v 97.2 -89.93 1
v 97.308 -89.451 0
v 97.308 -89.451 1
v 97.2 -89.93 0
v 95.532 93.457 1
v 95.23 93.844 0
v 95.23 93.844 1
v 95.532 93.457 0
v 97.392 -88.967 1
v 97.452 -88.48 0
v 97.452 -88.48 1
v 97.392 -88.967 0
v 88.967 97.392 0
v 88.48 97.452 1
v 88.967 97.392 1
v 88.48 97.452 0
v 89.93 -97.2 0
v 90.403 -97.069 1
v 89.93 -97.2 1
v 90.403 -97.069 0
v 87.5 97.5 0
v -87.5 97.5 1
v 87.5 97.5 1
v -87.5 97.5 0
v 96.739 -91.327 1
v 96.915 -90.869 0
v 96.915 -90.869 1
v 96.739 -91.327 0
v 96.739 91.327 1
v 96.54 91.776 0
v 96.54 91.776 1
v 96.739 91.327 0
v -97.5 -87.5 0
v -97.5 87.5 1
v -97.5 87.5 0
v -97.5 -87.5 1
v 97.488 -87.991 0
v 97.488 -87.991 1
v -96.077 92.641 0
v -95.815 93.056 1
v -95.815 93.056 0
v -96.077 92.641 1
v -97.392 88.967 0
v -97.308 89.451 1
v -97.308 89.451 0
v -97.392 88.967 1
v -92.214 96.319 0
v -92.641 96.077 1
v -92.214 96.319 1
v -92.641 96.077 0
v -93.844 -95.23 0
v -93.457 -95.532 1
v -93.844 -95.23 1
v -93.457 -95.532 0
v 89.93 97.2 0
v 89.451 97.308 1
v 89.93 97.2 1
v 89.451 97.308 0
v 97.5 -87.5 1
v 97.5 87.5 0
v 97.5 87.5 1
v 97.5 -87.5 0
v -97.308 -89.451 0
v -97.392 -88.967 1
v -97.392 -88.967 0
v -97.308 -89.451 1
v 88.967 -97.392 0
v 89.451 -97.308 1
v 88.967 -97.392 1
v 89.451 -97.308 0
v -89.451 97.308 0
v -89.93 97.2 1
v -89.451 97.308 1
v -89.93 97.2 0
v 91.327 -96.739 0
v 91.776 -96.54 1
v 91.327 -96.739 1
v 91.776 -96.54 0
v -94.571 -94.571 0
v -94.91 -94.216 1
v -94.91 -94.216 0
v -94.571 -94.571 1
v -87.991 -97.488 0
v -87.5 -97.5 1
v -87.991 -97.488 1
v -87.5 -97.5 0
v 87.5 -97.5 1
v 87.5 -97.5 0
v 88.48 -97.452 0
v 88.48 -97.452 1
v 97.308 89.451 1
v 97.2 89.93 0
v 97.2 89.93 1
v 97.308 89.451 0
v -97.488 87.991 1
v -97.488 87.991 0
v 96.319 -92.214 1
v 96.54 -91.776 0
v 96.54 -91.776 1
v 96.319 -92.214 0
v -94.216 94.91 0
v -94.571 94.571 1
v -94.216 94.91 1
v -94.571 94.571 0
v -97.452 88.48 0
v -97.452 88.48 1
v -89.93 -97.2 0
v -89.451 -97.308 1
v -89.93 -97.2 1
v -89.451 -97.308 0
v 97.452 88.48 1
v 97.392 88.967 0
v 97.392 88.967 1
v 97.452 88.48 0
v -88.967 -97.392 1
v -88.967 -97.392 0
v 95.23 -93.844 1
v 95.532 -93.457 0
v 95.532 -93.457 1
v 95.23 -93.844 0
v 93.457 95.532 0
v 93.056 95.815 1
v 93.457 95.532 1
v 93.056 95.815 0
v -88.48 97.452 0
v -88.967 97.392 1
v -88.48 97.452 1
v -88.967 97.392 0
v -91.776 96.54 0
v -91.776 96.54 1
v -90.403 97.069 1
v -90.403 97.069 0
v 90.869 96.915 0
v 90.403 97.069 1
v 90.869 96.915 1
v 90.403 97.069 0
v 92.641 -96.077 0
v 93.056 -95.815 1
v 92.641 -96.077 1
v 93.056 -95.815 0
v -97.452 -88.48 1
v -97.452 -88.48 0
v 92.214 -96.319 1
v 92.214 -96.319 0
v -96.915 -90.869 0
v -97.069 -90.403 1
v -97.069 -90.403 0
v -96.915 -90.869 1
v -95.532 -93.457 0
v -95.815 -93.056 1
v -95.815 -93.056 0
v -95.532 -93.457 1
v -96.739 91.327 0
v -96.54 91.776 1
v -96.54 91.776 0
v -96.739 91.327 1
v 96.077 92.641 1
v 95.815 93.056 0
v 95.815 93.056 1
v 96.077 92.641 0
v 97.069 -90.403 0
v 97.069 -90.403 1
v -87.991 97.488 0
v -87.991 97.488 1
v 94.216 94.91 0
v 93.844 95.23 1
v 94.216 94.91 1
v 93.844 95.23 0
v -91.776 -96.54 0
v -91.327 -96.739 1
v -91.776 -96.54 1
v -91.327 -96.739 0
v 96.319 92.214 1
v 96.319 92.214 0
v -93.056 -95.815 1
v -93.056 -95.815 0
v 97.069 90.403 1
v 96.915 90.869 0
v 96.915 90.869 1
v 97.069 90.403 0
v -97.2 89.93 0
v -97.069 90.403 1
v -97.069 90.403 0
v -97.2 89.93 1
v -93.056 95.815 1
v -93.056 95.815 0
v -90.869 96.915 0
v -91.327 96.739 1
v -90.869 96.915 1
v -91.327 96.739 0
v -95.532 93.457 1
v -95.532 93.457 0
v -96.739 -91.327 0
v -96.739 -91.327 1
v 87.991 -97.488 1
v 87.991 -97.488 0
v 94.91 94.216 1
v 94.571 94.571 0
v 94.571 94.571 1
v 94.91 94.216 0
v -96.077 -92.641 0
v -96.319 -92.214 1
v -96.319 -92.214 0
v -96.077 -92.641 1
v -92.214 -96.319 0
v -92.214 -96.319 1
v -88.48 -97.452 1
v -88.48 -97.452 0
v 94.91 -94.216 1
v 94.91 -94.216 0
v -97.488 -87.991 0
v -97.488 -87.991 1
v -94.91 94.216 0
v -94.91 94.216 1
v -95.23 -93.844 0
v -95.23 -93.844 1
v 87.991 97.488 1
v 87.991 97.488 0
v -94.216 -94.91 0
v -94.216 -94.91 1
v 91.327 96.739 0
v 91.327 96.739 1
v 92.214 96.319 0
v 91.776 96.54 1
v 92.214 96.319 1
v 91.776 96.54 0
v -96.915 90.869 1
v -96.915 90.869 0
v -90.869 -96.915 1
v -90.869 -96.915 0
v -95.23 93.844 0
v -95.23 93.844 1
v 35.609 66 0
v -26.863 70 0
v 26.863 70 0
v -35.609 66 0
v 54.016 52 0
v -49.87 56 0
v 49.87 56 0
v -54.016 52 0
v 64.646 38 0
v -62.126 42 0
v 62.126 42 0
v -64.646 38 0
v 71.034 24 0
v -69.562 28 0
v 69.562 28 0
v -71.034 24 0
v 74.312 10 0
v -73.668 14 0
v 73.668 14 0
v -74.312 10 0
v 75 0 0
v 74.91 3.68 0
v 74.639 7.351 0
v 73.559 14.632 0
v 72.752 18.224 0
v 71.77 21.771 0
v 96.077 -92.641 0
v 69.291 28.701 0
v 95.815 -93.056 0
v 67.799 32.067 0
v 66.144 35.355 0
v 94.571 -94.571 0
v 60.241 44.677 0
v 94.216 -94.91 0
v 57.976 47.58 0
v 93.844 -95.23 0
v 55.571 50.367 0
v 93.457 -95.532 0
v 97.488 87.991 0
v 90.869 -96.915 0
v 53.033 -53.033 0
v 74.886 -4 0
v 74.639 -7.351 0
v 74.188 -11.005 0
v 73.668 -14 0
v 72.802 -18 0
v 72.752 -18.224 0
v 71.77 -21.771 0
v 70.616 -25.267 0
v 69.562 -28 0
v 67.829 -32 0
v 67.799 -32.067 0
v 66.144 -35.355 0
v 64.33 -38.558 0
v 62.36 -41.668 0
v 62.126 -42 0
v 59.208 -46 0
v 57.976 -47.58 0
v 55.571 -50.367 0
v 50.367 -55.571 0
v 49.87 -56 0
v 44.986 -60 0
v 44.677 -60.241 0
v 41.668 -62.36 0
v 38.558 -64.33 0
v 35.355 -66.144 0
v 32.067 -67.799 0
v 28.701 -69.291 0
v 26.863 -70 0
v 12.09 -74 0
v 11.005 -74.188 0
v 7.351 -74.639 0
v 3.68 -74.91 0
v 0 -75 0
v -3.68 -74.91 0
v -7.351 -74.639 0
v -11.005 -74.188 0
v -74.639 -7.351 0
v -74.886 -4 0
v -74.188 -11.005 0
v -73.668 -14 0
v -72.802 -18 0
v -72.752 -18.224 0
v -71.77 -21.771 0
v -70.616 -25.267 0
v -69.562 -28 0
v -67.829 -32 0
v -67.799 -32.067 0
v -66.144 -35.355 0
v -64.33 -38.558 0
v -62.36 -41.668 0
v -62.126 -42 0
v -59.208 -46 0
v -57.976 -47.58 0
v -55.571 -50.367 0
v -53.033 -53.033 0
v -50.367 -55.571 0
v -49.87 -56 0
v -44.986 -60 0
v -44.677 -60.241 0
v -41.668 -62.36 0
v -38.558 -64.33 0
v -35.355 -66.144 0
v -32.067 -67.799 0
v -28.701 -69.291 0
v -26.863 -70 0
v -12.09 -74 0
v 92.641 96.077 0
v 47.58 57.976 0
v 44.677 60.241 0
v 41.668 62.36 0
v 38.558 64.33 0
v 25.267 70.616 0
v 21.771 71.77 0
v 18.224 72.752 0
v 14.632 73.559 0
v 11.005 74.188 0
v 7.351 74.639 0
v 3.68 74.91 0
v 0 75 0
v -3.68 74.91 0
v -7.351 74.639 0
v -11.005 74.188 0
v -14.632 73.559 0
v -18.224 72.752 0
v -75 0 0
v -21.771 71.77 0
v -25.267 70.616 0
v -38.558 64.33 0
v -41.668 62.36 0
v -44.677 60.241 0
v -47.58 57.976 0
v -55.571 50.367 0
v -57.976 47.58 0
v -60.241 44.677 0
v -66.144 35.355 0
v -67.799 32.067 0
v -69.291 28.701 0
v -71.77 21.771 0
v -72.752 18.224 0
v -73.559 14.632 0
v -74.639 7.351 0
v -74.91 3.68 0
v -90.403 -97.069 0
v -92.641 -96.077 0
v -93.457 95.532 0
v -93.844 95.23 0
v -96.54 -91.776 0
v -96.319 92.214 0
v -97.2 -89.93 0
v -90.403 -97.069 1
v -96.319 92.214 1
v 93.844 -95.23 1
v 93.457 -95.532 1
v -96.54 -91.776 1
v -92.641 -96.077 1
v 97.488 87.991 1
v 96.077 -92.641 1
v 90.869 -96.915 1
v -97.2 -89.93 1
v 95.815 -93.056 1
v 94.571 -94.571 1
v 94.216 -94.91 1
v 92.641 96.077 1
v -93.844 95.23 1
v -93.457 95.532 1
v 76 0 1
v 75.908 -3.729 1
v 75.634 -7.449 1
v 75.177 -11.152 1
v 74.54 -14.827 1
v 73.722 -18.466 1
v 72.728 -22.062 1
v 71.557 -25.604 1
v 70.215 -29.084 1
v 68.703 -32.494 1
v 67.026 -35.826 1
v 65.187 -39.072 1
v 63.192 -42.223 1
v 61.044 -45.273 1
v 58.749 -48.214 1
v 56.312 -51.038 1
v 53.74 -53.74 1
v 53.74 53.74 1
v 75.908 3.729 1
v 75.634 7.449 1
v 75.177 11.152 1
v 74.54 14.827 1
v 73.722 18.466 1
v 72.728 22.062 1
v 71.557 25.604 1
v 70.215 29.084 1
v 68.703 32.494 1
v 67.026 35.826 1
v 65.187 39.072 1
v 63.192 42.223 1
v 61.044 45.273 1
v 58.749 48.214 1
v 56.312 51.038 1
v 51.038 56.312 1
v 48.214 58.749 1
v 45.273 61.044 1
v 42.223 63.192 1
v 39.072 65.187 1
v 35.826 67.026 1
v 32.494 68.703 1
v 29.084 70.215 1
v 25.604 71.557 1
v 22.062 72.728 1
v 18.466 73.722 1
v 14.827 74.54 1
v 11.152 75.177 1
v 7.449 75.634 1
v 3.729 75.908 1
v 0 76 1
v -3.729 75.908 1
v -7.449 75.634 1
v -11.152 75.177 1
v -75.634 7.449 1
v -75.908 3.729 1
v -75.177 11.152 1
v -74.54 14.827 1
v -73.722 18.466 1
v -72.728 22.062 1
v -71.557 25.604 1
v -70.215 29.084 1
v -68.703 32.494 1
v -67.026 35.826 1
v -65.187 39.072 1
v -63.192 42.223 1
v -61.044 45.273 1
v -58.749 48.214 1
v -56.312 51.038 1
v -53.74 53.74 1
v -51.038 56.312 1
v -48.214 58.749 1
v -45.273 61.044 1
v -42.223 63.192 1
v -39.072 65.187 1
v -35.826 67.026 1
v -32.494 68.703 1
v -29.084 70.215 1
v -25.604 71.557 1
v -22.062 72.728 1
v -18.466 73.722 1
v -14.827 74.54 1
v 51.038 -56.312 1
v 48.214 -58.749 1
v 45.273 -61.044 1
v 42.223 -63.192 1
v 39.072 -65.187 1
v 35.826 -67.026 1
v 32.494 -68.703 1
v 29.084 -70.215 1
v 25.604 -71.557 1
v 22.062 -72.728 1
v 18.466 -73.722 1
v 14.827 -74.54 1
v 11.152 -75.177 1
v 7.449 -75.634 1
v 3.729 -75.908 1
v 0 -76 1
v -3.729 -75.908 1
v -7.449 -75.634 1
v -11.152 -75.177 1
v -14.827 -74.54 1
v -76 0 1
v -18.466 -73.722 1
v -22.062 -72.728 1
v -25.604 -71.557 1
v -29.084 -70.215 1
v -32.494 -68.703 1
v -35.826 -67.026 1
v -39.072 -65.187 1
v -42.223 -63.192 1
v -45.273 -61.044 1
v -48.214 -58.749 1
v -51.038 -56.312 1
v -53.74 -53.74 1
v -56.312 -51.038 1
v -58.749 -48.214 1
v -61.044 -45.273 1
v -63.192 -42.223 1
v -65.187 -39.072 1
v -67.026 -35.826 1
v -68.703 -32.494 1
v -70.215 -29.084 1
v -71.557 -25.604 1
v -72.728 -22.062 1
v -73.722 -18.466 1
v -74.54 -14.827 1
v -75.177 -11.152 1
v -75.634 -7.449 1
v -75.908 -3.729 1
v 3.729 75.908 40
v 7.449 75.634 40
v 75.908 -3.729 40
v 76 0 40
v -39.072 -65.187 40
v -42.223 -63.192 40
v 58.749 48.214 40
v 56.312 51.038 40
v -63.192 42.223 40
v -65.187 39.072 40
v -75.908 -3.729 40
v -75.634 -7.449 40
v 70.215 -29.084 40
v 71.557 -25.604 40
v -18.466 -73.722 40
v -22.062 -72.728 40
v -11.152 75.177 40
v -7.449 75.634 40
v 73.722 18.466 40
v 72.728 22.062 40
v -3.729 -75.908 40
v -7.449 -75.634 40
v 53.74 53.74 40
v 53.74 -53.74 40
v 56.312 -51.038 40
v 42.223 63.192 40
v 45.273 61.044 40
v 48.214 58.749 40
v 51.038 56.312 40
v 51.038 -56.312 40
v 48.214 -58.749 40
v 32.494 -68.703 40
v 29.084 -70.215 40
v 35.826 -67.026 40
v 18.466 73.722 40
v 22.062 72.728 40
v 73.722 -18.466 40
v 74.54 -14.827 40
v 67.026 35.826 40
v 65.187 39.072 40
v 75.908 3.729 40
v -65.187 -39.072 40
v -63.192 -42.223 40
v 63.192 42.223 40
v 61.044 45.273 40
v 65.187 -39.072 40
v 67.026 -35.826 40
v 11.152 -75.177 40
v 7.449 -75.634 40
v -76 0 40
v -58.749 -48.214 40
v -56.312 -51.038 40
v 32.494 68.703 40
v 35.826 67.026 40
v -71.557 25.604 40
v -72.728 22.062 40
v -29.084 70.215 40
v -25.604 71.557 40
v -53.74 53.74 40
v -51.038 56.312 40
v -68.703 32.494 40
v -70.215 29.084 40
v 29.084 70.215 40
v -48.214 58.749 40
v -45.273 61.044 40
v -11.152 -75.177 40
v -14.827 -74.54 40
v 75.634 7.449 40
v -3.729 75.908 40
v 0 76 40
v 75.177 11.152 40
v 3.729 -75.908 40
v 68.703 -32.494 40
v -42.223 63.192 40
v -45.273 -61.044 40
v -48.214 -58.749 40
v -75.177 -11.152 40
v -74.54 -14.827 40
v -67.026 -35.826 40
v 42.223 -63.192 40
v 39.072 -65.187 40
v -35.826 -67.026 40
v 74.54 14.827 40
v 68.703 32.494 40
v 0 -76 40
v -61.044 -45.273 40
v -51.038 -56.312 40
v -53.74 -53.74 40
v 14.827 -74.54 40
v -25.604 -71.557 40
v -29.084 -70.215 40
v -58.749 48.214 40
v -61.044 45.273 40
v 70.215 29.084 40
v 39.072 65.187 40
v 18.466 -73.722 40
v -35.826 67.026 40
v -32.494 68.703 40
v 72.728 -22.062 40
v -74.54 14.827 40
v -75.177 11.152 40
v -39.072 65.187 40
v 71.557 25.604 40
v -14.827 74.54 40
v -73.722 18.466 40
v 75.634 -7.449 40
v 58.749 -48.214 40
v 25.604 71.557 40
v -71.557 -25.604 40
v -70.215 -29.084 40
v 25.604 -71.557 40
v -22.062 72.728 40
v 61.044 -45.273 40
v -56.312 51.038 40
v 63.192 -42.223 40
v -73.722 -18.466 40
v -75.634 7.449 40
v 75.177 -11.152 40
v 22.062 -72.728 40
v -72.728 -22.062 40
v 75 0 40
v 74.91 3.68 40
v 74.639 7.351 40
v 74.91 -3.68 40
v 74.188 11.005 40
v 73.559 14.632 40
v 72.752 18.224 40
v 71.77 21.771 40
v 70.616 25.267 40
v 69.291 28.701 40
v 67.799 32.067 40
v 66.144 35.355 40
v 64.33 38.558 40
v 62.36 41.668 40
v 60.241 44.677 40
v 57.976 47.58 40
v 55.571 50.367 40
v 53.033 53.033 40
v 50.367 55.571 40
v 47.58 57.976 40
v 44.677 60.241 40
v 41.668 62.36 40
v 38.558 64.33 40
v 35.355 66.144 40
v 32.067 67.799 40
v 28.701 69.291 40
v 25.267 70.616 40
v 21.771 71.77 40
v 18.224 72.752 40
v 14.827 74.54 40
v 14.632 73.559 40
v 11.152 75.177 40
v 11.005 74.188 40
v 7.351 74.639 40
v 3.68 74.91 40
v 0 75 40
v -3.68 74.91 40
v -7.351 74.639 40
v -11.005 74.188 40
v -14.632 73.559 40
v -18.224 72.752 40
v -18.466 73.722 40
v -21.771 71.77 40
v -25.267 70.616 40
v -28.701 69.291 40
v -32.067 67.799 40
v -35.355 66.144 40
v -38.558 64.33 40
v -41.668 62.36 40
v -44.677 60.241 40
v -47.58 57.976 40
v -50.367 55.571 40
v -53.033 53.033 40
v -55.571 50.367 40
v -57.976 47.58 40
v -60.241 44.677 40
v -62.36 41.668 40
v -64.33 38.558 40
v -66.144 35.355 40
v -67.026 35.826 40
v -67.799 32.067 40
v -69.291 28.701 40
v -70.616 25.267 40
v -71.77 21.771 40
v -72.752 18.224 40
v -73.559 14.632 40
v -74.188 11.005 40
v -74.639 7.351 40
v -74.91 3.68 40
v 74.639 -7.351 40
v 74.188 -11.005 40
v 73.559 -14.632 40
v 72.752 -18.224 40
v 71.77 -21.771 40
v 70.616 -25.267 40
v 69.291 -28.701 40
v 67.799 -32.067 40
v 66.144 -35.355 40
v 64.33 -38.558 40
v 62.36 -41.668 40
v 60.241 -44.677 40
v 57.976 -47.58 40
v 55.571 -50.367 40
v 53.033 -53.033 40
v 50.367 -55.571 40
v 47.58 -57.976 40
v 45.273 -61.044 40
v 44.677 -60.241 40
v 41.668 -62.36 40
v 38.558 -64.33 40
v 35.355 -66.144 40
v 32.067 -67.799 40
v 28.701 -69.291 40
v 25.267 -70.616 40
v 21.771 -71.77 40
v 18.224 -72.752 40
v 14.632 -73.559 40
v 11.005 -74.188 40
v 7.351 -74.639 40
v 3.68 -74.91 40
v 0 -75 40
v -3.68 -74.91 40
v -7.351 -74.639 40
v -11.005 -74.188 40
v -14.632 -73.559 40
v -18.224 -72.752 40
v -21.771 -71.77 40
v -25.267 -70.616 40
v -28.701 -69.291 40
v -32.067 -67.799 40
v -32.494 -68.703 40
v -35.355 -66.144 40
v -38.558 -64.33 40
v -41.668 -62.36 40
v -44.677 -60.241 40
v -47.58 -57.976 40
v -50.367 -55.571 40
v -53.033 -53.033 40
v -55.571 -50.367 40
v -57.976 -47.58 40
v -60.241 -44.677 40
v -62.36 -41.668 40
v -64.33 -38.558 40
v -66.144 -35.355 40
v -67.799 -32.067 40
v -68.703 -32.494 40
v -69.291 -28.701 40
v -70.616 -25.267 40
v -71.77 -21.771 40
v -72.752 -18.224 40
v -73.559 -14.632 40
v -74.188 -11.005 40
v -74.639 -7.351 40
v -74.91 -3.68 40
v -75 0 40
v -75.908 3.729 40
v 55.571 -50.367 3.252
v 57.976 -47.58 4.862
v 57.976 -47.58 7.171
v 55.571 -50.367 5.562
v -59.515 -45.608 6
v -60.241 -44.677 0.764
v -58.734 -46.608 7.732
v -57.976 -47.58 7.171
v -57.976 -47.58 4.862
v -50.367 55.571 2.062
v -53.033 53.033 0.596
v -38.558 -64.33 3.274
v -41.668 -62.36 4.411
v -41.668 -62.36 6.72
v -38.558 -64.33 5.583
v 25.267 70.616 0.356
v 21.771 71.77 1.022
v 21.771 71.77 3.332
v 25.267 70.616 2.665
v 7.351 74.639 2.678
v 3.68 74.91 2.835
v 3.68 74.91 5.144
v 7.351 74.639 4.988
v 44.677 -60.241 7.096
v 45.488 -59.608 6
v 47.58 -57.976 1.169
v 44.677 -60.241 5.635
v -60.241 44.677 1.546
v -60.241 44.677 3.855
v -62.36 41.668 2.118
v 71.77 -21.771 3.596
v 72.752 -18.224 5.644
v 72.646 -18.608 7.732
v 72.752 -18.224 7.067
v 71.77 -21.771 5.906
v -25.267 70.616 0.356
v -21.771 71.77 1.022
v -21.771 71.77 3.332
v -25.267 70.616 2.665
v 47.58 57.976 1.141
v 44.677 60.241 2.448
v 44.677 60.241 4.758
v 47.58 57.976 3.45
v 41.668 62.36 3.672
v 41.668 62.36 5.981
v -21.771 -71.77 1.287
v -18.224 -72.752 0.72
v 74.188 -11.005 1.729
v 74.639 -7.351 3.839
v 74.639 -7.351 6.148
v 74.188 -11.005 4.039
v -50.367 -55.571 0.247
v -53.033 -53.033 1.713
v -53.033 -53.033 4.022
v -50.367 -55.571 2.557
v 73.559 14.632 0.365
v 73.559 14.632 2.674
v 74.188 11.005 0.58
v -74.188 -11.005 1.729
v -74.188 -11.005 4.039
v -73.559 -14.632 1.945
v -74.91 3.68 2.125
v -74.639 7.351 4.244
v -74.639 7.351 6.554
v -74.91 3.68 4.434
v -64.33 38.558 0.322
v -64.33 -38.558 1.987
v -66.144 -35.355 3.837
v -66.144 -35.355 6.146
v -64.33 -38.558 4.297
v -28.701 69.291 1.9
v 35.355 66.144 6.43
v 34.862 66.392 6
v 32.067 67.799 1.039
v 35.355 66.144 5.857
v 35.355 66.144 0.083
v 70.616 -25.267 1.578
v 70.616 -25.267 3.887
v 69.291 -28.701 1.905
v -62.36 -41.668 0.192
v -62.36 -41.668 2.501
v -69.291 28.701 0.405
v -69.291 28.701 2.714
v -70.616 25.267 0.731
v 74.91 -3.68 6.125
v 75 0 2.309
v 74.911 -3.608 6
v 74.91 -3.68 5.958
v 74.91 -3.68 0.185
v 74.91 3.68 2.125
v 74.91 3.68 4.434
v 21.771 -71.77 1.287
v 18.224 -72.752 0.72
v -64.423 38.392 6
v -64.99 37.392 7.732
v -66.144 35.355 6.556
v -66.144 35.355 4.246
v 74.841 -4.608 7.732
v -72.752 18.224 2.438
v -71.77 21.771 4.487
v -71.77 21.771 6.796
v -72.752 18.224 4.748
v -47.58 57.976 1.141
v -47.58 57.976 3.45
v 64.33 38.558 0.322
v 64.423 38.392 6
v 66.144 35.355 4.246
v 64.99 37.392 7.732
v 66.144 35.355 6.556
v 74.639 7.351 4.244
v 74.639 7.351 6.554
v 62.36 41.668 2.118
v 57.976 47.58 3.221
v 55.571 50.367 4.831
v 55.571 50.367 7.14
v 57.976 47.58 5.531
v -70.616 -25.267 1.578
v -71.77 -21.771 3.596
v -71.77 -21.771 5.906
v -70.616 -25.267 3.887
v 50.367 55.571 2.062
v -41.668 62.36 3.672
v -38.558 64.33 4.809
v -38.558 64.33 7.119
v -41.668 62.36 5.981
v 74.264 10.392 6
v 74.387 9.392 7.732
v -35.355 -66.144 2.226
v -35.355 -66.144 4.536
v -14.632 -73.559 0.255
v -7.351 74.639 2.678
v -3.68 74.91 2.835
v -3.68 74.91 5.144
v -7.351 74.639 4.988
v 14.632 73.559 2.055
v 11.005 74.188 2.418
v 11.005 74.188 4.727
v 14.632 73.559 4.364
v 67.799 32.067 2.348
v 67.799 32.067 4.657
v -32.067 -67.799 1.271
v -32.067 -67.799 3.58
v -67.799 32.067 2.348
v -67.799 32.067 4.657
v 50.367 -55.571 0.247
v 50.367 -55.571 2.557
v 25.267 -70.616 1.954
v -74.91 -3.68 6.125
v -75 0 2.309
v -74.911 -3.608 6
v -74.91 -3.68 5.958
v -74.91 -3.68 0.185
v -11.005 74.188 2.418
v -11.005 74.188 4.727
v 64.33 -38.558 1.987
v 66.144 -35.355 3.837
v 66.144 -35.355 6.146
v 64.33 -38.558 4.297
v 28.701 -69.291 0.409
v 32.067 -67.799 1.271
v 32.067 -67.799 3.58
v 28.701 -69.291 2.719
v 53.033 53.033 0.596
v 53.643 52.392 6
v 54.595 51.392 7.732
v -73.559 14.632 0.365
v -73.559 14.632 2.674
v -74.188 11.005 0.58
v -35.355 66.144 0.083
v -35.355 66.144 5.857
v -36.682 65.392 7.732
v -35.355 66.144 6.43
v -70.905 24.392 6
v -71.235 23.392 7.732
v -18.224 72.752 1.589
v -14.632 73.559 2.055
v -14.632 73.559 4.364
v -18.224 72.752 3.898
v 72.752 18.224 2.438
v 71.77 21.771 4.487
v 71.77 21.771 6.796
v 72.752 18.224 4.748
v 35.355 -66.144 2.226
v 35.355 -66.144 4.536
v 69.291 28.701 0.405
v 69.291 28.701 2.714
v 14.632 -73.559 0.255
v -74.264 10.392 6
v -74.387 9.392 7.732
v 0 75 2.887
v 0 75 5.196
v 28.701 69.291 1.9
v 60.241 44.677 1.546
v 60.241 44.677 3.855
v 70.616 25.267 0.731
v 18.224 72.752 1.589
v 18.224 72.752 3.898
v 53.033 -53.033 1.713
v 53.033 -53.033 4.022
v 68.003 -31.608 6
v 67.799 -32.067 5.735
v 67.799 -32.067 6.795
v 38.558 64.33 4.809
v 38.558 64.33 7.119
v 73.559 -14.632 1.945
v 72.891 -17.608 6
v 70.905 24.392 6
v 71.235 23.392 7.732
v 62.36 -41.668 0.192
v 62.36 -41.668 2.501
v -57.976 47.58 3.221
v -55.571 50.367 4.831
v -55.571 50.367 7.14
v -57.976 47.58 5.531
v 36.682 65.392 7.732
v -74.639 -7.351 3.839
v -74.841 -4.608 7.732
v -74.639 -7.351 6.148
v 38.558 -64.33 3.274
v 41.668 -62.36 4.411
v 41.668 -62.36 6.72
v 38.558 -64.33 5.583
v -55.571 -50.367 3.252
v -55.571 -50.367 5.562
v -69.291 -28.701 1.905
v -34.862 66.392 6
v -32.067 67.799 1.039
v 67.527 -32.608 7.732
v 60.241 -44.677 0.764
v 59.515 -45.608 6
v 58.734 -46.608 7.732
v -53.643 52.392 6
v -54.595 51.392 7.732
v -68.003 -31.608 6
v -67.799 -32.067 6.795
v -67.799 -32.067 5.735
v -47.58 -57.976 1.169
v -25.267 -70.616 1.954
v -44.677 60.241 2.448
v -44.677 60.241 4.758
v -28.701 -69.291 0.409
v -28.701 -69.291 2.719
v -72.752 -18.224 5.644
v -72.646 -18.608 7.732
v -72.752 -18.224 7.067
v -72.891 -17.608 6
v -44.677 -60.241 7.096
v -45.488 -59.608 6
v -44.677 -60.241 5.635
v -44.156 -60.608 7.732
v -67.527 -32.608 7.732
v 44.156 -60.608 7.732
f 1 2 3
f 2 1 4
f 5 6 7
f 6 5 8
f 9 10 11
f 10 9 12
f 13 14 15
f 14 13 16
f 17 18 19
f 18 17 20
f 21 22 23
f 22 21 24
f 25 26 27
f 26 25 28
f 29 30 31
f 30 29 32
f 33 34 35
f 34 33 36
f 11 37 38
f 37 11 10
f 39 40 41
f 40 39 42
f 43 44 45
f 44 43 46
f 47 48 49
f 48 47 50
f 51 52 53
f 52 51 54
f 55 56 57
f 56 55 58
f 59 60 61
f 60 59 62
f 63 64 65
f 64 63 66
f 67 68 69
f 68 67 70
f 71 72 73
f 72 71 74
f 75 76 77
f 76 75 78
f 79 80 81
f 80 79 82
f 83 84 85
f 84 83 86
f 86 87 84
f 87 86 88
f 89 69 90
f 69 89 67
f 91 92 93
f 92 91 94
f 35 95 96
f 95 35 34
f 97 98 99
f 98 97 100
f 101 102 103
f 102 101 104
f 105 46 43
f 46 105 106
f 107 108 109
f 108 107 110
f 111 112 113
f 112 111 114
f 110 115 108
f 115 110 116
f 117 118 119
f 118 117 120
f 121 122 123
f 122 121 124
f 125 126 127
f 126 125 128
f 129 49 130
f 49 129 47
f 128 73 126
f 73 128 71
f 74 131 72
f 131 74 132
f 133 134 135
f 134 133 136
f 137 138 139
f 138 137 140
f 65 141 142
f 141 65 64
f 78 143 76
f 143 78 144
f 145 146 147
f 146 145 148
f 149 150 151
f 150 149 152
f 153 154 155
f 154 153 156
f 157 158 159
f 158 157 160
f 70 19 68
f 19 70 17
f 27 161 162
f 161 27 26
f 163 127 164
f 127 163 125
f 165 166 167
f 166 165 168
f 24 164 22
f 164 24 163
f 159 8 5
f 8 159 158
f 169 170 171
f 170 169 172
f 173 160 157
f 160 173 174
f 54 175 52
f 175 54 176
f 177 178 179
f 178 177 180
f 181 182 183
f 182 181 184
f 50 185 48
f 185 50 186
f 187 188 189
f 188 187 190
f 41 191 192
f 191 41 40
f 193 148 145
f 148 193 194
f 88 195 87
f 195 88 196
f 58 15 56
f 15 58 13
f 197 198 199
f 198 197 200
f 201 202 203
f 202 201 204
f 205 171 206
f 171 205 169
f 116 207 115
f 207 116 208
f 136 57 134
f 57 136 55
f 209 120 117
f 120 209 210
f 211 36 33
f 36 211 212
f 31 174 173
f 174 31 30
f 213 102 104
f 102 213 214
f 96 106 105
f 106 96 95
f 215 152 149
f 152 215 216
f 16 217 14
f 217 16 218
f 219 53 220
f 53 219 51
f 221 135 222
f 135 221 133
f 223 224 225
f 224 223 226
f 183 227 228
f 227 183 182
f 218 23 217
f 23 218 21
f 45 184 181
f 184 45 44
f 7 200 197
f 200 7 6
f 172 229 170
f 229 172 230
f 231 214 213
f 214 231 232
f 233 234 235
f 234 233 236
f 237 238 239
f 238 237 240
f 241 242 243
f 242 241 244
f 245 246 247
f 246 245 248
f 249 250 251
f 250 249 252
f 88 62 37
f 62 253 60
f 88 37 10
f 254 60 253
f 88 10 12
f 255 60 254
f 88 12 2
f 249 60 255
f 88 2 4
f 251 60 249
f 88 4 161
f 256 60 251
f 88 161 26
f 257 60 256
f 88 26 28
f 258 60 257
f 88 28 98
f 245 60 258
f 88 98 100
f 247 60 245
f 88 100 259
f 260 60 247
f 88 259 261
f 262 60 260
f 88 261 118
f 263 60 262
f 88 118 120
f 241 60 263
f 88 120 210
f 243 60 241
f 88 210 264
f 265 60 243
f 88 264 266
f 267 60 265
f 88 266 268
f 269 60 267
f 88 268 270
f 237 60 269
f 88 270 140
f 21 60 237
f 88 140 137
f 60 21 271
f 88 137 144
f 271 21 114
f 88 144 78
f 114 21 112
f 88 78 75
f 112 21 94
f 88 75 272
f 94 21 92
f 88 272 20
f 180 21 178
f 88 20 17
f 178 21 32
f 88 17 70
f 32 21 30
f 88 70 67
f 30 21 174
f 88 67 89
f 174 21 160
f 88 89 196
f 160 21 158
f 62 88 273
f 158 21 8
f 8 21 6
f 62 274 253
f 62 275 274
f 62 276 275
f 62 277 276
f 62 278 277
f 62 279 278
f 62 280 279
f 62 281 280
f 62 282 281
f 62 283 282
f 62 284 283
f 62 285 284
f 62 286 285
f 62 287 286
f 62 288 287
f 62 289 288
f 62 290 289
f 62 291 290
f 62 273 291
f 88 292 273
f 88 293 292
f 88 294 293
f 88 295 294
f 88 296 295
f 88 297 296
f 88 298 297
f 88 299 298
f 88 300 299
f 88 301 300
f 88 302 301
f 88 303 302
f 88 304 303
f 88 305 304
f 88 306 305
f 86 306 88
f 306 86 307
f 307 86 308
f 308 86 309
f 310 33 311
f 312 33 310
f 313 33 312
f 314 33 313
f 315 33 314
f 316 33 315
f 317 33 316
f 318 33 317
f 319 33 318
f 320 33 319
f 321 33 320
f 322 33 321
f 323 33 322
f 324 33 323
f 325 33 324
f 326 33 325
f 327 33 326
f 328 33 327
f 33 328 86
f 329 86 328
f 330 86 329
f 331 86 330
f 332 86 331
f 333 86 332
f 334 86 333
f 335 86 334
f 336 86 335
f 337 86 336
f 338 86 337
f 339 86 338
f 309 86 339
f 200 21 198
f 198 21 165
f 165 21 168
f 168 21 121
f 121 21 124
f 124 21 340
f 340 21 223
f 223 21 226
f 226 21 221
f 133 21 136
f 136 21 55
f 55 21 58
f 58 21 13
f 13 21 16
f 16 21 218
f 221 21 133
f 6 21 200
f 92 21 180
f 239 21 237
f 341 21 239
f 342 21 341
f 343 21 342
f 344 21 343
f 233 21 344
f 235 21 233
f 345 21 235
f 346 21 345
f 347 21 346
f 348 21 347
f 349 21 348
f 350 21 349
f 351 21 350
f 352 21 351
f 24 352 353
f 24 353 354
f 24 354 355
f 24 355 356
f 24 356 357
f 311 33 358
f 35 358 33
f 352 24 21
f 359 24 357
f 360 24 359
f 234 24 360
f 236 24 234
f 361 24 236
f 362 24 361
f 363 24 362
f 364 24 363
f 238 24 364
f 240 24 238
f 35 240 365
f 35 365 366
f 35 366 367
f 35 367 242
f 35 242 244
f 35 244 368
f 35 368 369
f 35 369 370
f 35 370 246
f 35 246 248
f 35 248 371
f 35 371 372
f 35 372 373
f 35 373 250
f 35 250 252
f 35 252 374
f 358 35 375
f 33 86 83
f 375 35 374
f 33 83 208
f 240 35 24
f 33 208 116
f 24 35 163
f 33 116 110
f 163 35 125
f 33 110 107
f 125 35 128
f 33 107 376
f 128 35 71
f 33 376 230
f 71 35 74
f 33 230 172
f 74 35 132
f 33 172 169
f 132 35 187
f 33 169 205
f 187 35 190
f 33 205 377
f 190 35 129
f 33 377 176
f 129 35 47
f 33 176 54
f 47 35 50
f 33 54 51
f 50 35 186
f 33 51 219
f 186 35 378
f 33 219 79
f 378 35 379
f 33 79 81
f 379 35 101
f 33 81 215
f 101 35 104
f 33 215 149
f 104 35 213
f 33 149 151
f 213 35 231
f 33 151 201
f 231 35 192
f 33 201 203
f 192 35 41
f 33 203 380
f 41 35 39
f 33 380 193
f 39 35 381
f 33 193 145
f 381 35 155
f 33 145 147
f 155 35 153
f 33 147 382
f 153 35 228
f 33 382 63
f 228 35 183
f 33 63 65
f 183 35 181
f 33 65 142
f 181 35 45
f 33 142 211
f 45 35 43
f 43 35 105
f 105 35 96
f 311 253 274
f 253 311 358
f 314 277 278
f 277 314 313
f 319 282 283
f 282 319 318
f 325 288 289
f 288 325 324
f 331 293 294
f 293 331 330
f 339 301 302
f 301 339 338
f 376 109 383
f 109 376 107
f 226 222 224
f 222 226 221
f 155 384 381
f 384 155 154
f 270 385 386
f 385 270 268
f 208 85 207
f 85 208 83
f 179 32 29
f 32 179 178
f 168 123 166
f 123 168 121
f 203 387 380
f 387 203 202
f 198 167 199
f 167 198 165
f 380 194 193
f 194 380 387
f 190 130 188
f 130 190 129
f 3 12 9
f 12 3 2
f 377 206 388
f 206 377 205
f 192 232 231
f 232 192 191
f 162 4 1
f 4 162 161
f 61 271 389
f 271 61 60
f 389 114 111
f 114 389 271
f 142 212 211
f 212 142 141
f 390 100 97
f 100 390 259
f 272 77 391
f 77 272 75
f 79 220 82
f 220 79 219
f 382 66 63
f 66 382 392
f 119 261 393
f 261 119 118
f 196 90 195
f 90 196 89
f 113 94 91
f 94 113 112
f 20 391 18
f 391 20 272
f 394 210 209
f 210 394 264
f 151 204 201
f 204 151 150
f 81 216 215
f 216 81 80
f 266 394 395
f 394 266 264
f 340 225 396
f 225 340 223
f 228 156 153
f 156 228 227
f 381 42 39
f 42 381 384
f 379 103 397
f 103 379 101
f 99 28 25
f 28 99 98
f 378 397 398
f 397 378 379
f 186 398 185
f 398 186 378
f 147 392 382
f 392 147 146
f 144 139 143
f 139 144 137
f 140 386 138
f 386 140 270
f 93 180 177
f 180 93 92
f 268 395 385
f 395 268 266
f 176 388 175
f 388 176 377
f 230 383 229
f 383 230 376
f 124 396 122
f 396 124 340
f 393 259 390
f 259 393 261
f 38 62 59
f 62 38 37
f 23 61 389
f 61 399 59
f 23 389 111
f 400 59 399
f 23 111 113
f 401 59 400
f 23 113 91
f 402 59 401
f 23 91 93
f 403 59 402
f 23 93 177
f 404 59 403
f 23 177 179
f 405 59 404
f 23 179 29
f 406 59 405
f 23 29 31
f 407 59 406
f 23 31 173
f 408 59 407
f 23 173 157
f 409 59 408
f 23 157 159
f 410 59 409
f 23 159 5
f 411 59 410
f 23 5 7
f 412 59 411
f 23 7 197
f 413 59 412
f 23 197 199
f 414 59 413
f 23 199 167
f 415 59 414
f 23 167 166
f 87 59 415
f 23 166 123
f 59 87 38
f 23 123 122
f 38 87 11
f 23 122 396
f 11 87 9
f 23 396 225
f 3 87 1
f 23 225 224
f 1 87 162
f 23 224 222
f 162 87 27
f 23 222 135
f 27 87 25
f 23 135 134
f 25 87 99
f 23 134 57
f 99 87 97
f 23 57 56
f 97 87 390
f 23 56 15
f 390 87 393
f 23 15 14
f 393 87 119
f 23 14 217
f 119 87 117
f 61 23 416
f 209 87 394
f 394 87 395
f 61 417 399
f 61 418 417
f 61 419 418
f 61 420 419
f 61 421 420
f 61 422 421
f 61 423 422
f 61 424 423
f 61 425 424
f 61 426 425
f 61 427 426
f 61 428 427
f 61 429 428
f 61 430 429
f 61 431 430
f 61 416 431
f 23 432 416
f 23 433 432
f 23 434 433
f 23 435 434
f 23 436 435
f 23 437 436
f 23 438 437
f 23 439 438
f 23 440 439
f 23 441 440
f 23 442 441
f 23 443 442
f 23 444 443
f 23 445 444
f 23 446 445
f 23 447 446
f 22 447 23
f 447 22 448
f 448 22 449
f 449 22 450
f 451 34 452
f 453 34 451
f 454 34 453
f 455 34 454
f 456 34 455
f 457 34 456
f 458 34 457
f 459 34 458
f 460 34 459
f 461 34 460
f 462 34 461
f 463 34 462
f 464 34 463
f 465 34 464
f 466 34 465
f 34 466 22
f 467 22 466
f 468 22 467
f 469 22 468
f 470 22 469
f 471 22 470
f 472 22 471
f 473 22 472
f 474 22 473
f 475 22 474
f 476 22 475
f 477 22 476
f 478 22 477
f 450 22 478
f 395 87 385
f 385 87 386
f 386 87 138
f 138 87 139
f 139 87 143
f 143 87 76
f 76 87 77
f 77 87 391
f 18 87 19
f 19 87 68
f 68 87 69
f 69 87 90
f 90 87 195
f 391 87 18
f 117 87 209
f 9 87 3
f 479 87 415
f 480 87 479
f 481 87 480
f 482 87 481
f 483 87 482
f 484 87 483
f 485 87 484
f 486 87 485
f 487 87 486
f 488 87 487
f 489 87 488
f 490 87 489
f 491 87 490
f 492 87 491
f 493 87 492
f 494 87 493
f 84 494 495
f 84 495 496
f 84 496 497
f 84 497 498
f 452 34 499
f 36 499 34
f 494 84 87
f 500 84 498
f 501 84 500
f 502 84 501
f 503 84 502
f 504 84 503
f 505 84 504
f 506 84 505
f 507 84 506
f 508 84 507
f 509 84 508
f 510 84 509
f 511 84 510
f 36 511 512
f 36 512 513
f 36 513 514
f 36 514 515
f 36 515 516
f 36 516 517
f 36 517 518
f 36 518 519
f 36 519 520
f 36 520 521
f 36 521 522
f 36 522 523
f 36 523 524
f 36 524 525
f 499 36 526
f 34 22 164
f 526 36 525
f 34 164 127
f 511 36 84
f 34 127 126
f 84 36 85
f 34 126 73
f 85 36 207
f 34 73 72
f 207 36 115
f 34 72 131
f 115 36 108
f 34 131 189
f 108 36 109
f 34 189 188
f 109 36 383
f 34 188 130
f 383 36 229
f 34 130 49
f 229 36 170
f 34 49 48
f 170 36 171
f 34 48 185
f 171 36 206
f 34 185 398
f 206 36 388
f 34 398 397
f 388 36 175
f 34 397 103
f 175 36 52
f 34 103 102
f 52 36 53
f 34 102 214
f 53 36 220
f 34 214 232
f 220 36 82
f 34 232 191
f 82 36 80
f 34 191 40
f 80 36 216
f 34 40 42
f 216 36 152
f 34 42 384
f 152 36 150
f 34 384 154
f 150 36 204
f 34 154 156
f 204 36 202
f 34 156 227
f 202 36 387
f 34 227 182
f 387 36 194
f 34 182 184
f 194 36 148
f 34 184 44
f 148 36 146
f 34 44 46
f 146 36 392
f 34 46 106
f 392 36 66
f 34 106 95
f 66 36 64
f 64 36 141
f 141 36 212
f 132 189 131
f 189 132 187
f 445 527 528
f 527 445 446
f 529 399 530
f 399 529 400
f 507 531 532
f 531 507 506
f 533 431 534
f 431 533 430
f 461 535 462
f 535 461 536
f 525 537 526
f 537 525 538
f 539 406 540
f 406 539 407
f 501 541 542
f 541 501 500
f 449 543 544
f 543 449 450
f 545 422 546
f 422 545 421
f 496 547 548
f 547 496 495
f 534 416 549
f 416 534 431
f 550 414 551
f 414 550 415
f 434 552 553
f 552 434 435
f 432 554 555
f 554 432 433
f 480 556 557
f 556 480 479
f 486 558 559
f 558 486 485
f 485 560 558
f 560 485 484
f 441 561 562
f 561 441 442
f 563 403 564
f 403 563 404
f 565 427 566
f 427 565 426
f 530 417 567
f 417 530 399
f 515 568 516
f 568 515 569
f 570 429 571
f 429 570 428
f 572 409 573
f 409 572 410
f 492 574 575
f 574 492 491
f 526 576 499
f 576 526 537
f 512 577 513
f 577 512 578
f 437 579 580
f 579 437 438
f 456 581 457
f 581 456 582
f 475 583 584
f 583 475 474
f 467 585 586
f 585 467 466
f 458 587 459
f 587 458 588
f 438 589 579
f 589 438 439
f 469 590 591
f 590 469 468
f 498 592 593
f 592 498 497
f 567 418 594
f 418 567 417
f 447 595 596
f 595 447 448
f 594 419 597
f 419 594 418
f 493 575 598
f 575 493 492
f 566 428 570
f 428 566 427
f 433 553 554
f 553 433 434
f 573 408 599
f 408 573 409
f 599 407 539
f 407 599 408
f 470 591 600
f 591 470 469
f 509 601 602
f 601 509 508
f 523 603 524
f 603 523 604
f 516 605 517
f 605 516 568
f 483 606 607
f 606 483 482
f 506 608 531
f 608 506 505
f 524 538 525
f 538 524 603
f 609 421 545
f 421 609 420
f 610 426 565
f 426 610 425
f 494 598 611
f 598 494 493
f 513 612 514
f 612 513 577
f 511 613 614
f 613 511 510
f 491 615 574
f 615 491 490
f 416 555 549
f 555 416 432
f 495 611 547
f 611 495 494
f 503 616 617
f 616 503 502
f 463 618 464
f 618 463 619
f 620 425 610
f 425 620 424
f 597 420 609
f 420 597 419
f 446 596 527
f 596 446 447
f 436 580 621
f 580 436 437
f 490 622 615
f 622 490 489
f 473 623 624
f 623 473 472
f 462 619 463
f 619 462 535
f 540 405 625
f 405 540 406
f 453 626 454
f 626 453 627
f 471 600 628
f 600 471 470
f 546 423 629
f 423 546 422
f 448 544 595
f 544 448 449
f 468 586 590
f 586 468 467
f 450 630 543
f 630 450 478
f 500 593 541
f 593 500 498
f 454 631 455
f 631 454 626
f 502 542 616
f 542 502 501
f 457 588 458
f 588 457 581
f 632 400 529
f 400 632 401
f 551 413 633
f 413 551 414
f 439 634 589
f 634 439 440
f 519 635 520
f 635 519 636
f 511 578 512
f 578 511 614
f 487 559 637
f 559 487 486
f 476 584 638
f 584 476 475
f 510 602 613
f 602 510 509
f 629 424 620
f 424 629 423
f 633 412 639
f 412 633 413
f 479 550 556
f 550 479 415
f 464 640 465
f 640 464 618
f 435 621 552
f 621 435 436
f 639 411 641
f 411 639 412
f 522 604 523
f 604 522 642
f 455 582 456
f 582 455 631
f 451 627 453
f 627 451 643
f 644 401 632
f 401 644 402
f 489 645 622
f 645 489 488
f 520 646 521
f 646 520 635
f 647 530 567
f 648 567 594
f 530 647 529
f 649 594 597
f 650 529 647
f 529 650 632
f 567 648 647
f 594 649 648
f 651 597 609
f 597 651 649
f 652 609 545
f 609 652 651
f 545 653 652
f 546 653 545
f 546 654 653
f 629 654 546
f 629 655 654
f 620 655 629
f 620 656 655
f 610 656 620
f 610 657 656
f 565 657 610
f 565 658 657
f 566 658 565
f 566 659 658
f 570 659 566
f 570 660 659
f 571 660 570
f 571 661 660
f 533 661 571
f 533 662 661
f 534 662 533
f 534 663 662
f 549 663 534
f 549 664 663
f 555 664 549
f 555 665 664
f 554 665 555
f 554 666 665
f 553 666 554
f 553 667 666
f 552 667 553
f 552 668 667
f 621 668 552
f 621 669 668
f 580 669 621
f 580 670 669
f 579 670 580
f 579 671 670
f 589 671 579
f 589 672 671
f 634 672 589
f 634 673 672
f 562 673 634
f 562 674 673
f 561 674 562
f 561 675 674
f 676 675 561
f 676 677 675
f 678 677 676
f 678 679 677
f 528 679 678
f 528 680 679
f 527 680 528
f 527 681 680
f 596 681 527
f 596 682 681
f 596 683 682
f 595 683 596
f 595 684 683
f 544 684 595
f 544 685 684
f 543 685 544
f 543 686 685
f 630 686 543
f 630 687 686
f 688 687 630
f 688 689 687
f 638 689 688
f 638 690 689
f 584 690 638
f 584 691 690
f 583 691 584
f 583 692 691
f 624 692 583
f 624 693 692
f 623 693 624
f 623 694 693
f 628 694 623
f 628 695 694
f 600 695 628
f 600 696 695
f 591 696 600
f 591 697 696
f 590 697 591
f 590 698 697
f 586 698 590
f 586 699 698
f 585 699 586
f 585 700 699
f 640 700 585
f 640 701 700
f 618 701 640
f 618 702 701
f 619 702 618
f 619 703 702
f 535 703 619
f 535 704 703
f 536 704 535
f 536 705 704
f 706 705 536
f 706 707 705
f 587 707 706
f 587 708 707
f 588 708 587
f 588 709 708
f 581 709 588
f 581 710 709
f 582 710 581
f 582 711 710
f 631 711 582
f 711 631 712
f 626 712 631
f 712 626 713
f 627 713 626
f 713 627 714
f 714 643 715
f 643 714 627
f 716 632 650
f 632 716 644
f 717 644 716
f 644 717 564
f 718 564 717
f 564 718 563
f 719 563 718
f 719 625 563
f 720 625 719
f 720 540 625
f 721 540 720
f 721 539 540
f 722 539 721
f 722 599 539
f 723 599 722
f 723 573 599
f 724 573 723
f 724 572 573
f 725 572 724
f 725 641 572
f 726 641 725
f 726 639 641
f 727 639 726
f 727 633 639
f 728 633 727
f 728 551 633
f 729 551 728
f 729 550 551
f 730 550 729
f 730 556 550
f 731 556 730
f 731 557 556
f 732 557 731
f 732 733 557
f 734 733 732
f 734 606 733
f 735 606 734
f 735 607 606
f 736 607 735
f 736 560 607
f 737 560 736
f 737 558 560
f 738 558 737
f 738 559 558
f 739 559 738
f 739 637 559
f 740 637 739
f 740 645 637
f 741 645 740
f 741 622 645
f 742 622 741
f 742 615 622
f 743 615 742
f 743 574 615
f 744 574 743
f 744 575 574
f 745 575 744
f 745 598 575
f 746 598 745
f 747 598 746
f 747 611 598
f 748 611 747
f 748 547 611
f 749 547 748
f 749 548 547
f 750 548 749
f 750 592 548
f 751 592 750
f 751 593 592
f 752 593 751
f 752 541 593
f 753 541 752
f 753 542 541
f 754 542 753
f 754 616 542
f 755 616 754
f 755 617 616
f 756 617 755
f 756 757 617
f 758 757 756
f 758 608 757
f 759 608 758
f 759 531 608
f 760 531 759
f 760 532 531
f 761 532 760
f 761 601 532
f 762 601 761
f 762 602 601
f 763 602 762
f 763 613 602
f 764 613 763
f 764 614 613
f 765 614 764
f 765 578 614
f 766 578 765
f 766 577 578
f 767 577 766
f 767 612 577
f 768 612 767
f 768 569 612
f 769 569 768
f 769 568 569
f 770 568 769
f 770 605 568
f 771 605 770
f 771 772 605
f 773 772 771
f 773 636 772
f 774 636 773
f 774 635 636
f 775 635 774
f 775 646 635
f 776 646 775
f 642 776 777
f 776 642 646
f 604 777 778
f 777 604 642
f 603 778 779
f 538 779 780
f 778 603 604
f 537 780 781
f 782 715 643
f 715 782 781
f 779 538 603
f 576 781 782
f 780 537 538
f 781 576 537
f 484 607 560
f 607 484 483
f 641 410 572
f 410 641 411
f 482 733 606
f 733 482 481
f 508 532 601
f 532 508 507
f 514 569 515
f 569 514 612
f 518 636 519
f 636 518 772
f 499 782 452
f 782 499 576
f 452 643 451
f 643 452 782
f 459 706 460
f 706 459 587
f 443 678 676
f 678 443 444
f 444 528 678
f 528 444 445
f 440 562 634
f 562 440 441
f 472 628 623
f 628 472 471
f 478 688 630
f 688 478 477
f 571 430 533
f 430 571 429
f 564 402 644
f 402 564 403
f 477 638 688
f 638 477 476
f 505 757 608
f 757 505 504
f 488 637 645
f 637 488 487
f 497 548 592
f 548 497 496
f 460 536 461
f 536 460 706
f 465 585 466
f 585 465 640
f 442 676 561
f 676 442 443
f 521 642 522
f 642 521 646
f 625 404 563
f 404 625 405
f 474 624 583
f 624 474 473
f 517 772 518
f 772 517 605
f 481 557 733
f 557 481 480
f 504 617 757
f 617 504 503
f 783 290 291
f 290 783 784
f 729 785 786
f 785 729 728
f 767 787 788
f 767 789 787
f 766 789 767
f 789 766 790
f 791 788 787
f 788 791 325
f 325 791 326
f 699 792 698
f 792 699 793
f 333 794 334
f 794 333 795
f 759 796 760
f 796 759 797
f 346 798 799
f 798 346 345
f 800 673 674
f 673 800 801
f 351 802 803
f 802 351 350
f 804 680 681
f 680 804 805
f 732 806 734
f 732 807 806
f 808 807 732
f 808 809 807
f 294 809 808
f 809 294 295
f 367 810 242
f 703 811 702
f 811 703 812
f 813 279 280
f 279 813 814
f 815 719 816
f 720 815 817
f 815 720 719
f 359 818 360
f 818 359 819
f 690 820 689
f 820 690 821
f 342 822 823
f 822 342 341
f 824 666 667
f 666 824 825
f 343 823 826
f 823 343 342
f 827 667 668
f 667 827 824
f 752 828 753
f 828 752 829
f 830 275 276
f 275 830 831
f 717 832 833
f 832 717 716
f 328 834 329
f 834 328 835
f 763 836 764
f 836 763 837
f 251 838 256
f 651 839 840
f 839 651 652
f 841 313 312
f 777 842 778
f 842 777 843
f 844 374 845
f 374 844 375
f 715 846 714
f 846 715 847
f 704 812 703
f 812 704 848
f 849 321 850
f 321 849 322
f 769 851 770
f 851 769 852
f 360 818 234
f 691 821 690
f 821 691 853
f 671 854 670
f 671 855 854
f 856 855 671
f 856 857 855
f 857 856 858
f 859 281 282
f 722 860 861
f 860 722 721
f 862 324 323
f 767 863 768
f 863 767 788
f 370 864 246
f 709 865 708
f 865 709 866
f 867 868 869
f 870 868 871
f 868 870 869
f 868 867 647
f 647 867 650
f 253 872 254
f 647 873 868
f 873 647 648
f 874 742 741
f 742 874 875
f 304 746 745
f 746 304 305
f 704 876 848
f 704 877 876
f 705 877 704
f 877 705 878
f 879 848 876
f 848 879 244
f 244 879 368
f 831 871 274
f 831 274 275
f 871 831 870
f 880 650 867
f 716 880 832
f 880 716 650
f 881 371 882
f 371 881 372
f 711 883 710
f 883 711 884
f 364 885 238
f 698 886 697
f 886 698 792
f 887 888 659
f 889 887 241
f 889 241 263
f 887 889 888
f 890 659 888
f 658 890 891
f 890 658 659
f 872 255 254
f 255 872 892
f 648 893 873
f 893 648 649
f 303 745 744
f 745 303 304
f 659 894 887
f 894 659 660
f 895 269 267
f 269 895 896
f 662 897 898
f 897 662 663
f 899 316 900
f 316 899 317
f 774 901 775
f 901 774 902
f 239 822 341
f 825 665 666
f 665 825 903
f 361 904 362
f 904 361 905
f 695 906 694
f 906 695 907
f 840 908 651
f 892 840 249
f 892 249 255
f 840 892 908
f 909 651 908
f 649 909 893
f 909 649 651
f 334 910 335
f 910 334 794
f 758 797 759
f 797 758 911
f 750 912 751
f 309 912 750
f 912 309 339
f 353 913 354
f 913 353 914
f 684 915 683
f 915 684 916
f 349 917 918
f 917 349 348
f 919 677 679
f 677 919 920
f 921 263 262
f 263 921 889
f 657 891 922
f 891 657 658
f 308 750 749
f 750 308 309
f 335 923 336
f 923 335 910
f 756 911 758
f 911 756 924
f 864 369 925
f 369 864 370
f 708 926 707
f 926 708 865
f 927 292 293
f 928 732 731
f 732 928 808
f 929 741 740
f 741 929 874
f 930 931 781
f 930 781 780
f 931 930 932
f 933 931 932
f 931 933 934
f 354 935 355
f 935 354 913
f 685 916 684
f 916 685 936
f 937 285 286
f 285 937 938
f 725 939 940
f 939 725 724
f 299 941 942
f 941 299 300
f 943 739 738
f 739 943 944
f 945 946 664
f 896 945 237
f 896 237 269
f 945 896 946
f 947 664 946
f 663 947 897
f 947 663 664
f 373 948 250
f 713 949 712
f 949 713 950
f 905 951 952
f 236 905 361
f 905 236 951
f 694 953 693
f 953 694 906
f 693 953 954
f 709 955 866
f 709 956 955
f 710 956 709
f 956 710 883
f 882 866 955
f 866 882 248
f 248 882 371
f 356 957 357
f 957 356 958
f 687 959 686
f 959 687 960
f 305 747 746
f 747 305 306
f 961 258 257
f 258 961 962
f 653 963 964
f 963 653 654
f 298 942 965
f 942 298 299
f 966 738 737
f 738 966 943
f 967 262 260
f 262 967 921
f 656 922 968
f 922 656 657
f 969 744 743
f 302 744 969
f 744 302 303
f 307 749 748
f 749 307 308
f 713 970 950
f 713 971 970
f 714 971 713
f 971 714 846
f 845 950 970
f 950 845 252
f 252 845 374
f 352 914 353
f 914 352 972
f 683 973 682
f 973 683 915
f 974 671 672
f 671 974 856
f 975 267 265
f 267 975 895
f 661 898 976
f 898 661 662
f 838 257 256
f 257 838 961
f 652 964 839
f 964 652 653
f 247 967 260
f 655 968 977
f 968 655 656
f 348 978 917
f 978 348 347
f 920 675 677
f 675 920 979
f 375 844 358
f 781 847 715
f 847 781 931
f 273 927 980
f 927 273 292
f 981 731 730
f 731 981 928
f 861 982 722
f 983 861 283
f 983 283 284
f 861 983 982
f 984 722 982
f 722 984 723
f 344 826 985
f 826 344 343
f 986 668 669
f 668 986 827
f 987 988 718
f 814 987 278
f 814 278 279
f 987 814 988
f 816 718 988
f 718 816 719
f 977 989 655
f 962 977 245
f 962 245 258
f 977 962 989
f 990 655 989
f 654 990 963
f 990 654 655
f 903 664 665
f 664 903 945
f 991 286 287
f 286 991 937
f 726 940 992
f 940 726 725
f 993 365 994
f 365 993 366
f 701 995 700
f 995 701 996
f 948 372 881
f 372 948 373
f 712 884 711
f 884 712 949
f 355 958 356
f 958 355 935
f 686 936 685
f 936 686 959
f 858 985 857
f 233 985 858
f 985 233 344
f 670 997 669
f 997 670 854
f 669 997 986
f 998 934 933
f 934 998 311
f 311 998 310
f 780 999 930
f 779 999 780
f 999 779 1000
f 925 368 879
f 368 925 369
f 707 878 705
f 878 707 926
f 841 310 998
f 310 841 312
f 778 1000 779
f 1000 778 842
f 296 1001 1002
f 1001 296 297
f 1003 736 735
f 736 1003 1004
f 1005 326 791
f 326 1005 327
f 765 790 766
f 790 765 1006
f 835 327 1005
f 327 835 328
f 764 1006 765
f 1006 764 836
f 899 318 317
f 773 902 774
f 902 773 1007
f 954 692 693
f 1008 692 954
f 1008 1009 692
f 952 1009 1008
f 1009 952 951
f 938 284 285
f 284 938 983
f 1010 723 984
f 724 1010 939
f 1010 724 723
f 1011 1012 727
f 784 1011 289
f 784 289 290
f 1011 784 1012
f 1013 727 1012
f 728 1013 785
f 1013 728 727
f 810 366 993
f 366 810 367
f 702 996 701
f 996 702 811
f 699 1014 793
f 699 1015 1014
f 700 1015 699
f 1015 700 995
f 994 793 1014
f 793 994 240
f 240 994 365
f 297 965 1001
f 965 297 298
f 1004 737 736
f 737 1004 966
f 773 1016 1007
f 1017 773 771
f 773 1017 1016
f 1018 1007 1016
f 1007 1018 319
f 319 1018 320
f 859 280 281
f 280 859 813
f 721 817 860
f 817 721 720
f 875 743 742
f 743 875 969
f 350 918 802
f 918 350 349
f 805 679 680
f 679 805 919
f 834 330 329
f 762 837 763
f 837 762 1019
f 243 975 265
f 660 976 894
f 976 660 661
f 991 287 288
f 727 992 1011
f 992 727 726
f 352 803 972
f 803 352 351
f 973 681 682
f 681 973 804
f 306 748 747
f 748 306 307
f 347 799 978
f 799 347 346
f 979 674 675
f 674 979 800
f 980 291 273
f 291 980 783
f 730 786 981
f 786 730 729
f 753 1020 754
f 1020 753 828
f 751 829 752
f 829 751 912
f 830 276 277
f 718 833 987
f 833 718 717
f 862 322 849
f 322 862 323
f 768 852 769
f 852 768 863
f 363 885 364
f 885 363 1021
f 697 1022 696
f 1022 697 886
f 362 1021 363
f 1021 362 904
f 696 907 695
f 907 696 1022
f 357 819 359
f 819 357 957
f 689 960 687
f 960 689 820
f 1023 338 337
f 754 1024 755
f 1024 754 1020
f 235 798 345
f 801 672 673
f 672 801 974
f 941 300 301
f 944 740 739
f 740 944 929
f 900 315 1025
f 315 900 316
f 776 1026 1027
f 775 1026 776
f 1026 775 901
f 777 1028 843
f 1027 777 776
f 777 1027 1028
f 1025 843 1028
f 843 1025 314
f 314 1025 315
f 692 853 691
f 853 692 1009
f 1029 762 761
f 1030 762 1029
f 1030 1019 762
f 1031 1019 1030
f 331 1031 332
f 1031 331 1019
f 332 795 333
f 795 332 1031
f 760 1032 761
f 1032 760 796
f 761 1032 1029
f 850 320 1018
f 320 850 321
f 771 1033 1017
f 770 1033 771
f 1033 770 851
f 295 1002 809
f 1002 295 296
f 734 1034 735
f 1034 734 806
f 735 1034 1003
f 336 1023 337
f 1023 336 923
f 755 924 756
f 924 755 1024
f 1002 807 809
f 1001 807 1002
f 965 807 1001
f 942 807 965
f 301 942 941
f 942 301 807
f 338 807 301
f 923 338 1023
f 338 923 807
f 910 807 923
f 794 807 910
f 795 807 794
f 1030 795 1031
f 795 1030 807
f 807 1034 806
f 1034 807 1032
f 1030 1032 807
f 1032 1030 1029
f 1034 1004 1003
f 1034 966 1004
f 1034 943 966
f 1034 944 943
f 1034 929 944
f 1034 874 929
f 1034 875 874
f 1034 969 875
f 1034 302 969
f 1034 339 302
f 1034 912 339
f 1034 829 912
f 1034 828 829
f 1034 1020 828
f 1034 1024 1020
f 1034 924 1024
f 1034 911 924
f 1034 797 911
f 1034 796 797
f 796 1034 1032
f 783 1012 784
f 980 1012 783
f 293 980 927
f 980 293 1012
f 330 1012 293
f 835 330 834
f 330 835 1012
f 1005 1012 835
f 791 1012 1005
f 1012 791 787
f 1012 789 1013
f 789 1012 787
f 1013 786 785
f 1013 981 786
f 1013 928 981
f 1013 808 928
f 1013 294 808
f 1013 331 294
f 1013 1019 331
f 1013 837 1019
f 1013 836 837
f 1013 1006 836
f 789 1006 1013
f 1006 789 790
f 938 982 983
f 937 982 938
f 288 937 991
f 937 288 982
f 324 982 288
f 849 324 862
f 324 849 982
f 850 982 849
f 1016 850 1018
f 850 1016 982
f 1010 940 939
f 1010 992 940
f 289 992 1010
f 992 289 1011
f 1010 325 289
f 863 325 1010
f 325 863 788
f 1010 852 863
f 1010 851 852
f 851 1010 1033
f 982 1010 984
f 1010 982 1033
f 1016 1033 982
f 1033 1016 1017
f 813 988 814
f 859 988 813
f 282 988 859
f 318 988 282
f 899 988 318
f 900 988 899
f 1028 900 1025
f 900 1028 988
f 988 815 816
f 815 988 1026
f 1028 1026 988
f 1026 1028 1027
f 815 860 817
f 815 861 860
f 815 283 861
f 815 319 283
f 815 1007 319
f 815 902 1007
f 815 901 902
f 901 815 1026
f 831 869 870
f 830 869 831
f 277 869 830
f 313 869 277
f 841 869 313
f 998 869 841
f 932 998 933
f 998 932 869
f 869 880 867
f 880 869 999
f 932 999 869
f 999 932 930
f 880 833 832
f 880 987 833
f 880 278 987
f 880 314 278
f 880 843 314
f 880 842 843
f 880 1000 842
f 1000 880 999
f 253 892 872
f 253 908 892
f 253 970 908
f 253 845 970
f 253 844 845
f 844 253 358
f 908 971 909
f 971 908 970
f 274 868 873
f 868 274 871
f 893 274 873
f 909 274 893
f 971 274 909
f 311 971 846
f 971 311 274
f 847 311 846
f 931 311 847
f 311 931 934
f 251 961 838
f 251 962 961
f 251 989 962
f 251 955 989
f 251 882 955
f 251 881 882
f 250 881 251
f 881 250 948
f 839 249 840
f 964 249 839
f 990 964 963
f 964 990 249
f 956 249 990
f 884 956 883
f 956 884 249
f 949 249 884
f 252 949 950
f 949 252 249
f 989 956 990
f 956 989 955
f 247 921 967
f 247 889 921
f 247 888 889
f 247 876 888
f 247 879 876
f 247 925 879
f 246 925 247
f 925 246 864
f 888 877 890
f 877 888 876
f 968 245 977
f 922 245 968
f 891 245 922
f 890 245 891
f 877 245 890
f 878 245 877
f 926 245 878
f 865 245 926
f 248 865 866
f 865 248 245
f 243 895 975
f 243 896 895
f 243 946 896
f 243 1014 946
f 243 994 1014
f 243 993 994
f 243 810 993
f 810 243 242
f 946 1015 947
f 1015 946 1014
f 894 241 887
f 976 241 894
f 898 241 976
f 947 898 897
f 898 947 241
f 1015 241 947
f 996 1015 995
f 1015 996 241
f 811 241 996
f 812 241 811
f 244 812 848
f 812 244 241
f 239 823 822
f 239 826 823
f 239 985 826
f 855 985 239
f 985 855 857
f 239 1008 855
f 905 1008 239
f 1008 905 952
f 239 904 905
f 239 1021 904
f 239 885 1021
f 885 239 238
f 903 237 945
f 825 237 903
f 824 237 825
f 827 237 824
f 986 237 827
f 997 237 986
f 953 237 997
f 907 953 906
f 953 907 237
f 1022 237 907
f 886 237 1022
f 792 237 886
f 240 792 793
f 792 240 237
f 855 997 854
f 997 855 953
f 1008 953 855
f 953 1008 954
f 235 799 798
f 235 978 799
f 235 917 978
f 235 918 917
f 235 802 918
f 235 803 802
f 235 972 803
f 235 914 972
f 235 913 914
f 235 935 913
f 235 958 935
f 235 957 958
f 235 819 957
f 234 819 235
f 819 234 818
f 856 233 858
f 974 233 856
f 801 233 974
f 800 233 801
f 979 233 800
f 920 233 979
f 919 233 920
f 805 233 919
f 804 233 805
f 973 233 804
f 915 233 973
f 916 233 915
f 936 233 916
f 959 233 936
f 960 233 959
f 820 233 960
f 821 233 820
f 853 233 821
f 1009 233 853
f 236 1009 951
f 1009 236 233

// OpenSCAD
/* [VENT BASE] */
BASE_WIDTH = 195;
BASE_HEIGHT = 195;
BASE_THICKNESS = 1;
WITH_BASE = true;

/* [TUBE] */
TUBE_DIAMETER = 152;
TUBE_DEEP_DIAMETER = 160;
TUBE_WALL_THICKNESS = 2;
TUBE_HEIGHT = 40;   // 40

/* [LINES] */
LINE_HEIGHT = 24;   // 25
LINE_THICKNESS = 2;
LINE_ANGLE = 30;    // 45
LINE_SPACING = 14;
LINES_COUNT = 10;
WITH_LINES = true;

// HIDDEN
EXPLODE = 0;
$fn = 128;

air_vent();

module air_vent(){
    color("white")
    union(){
        difference(){
            base_with_tube();
            hole();        
        }
        if(WITH_LINES){
            intersection(){
                horizontal_lines();
                tube();
            }
        }
    }
}

module base_with_tube(){
    union(){
        if(WITH_BASE){
            base();
        }
        tube();
    }    
}

module base(){
    translate([0,0, BASE_THICKNESS/2])    
    rounded_corners(BASE_WIDTH, BASE_HEIGHT, BASE_THICKNESS, 20);
}

//module tube_with_spacers(){
//    difference(){
//        tube();
//    }
//    
//    
//    translate([0,0,TUBE_HEIGHT/2])
//    cube([BASE_WIDTH, LINE_HEIGHT, TUBE_HEIGHT], true);    
//}

module tube(){
    radius = TUBE_DIAMETER/2;
    cylinder(TUBE_HEIGHT, radius, radius);    
}

module hole(){
    radius = (TUBE_DIAMETER - TUBE_WALL_THICKNESS) / 2;
    translate([0,0,-TUBE_HEIGHT/2])
    cylinder(2*TUBE_HEIGHT, radius, radius);
}

module horizontal_lines(){
    count = LINES_COUNT;    
    translate_step = LINE_SPACING;
    initial_translate = count*translate_step;
    for (n = [-count/2:1:count/2]){
        translate([0, n*translate_step, 0])
        rotate([LINE_ANGLE,0,0])
        line();
    };         
}

module line(){
    translate([0, 0, LINE_THICKNESS/2])
    cube([BASE_WIDTH, LINE_HEIGHT, LINE_THICKNESS], true);
}

// To be a library
module rounded_corners(width, height, depth, corner_curve){
    x_translate = width-corner_curve;
    y_translate = height-corner_curve;     
    
    hull(){
            translate([-x_translate/2, -y_translate/2, 0])
            cylinder(depth,corner_curve/2, corner_curve/2, true);    
            
            translate([-x_translate/2, y_translate/2, 0])
            cylinder(depth,corner_curve/2, corner_curve/2, true);

            translate([x_translate/2, y_translate/2, 0])
            cylinder(depth,corner_curve/2, corner_curve/2, true);        
            
            translate([x_translate/2, -y_translate/2, 0])
            cylinder(depth,corner_curve/2, corner_curve/2, true);        
    }        
}
